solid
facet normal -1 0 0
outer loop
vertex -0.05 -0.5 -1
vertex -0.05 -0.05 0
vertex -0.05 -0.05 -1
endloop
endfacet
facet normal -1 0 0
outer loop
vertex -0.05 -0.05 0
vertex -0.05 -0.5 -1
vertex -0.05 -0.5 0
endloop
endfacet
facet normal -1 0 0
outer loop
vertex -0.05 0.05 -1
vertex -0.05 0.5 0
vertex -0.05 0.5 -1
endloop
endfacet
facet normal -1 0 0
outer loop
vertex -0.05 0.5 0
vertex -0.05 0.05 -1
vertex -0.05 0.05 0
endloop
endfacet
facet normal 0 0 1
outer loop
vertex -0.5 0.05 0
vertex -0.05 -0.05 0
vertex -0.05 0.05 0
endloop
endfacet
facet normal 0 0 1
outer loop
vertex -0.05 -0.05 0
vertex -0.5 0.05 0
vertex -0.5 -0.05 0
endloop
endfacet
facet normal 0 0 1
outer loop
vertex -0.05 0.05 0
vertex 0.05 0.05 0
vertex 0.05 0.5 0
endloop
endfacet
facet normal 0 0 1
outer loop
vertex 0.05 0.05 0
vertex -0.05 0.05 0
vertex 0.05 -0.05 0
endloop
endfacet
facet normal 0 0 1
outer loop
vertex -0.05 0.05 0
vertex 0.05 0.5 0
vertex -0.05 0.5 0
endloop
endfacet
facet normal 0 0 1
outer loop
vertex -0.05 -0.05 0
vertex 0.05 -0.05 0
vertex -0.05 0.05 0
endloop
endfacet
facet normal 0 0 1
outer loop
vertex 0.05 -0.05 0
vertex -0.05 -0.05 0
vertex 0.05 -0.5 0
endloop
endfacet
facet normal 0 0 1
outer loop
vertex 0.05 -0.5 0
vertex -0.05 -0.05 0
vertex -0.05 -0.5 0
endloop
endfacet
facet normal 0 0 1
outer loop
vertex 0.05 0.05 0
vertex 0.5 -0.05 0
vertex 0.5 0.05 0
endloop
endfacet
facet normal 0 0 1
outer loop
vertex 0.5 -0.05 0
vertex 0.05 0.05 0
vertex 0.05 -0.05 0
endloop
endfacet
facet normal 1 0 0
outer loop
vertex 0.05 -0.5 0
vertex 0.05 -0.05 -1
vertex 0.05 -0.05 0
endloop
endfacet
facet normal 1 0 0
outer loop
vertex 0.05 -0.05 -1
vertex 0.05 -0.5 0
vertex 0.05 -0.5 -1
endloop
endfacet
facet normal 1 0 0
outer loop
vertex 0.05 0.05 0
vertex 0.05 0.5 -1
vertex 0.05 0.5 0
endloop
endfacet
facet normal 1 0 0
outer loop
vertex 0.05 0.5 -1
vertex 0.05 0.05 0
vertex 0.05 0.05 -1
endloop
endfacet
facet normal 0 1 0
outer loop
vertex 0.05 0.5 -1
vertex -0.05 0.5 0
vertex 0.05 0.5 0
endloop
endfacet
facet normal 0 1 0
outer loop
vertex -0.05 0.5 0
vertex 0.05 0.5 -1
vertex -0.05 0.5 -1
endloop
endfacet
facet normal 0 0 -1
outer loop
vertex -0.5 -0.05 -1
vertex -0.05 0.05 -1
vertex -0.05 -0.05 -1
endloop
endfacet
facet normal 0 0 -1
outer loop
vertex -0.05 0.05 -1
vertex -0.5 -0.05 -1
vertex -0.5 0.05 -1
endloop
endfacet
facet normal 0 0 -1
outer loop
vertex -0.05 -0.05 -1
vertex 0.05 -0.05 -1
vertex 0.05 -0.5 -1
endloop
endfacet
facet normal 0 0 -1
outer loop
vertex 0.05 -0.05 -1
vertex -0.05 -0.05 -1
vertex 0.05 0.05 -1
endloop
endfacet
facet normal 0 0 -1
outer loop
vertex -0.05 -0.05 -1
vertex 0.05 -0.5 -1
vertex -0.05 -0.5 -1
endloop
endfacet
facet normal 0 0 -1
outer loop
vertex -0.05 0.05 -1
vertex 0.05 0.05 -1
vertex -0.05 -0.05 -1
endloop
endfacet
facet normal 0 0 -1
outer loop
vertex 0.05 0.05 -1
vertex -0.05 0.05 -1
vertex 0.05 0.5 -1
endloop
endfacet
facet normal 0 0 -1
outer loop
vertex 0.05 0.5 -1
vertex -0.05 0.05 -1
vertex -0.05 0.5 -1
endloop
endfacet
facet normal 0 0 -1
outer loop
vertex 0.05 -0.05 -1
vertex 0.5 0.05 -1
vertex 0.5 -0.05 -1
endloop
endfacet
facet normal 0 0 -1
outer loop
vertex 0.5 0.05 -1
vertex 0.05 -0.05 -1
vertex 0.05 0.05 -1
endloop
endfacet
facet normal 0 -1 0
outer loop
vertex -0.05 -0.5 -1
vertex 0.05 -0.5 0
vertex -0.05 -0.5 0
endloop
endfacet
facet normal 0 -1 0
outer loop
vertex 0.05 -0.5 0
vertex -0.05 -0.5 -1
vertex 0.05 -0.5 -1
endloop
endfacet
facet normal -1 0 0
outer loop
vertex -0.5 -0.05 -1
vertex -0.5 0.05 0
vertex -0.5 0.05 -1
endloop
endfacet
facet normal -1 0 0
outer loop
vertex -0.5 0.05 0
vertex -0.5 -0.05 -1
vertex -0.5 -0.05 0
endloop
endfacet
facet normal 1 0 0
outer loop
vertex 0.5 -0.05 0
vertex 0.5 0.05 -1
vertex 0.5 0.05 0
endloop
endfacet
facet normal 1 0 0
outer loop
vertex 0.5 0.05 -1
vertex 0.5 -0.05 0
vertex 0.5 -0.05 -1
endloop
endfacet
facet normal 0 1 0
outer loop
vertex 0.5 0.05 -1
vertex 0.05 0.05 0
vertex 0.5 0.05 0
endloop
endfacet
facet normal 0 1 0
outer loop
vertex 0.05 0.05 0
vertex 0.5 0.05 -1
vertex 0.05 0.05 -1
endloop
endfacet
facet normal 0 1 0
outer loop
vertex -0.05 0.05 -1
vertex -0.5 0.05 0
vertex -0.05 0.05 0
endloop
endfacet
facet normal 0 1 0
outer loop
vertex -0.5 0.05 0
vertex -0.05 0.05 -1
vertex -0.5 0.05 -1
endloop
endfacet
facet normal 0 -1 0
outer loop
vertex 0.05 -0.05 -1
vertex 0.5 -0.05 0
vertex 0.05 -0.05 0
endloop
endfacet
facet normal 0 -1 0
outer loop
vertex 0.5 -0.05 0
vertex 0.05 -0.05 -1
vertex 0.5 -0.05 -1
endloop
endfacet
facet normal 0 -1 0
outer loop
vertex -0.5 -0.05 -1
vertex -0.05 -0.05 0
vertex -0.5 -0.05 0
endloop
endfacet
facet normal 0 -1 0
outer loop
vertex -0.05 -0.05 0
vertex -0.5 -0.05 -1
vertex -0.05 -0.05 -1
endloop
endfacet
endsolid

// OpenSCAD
//----------------------------------------------
// Custom Support size must be 1x1x1 
//----------------------------------------------
$fn=10;

translate([-0.5,-0.5,-0.5]) 
union() {
    translate([0.5,0.5,0.0]) cube([0.1,1,1], center = true);
    translate([0.5,0.5,0.0]) cube([1,0.1,1], center = true);
}
